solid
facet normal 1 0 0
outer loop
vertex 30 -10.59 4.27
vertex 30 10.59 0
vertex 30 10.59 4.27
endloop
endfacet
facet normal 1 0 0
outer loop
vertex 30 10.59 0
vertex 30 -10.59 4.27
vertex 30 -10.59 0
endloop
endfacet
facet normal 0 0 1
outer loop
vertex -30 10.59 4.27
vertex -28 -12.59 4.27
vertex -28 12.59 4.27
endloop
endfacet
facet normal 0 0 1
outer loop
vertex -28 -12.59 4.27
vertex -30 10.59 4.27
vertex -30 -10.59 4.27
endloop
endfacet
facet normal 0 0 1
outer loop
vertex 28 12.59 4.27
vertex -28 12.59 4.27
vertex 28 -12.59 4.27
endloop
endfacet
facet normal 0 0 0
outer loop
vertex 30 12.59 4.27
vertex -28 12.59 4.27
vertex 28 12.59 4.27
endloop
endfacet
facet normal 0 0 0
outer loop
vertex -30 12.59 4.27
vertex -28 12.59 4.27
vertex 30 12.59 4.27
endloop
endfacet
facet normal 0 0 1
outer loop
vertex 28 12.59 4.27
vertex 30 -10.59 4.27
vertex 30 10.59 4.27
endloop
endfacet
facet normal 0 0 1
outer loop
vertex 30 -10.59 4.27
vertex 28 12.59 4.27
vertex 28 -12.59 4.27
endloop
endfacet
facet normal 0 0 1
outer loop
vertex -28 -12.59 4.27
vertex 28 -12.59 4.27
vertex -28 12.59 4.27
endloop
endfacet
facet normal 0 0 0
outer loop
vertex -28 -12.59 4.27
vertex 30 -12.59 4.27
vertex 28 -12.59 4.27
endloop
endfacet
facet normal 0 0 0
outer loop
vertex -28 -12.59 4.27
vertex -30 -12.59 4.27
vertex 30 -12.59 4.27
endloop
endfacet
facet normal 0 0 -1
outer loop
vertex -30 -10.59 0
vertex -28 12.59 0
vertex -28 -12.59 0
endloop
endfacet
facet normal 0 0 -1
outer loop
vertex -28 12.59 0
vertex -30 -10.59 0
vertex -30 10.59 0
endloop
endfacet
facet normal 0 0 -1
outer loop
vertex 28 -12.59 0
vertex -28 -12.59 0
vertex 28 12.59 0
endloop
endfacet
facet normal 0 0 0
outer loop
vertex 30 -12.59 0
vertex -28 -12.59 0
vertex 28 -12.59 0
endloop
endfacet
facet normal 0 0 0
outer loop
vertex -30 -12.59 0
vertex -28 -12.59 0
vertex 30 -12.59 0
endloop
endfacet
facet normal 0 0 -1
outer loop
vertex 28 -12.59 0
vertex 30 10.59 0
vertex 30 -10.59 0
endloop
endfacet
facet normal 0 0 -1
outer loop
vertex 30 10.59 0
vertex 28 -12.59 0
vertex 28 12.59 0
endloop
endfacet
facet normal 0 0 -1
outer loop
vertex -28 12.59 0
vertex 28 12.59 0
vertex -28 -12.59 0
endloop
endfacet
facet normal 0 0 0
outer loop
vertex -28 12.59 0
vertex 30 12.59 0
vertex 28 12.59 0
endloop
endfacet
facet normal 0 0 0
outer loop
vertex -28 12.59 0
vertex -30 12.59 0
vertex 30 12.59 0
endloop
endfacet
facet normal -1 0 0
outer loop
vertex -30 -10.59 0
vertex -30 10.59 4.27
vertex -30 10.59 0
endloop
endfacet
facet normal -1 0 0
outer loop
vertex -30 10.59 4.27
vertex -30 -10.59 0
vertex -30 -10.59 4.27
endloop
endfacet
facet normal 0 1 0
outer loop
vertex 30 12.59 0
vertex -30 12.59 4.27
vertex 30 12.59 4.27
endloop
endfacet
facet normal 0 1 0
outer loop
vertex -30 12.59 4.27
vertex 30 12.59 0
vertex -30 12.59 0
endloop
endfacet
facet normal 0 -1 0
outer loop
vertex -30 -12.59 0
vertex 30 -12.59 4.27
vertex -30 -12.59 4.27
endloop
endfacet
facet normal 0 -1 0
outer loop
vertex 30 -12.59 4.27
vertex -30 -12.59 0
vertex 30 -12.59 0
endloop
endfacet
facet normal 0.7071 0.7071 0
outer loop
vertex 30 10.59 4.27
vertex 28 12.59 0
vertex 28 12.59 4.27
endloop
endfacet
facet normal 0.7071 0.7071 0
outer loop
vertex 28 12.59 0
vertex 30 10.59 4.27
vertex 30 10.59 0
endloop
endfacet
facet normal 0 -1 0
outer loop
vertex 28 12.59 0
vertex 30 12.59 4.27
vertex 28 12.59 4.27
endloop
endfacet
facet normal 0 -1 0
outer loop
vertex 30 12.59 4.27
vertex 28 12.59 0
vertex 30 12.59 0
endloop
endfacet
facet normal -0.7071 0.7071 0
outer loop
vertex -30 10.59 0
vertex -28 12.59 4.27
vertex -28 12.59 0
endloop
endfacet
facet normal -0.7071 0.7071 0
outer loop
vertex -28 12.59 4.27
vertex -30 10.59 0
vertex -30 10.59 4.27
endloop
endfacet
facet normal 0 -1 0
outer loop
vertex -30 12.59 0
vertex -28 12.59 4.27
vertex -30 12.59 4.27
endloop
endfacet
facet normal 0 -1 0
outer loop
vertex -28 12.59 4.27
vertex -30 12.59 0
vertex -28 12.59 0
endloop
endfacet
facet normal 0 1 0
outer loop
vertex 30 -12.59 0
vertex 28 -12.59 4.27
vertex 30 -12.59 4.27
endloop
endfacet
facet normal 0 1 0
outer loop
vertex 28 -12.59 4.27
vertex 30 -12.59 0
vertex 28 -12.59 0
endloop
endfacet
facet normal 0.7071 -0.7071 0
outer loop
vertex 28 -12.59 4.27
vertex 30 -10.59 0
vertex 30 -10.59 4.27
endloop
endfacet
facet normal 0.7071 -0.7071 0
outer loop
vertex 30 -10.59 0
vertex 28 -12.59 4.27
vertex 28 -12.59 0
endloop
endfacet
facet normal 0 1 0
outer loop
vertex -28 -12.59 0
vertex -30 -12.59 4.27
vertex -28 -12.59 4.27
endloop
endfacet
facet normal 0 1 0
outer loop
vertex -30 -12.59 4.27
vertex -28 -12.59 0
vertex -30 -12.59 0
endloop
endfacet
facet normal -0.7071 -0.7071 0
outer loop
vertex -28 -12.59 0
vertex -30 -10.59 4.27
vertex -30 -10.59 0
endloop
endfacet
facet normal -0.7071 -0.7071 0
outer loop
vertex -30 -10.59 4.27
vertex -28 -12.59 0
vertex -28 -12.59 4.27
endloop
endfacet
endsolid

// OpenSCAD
/* doodle-meta {"version":1,"parameters":{"width":{"label":"Overall width","description":"Changes the body width along X","unit":"mm","feature":"body_width"},"depth":{"label":"Overall depth","description":"Changes the body depth along Y","unit":"mm","feature":"body_depth"},"height":{"label":"Overall height","description":"Changes the body height along Z","unit":"mm","feature":"body_height"},"chamfer_size":{"label":"Chamfer size","description":"Size of the 45-degree chamfer on all edges","unit":"mm","feature":"chamfer"}},"features":{"body_width":{"kind":"dimension","axis":"x","label":"Overall width"},"body_depth":{"kind":"dimension","axis":"y","label":"Overall depth"},"body_height":{"kind":"dimension","axis":"z","label":"Overall height"},"chamfer":{"kind":"region","label":"Edge Chamfers","min":[0,0,0],"max":[{"parameter":"width","scale":1,"offset":0},{"parameter":"depth","scale":1,"offset":0},{"parameter":"height","scale":1,"offset":0}]}}} */

// Parameters
width = 60.0;
depth = 25.18;
height = 4.27;
chamfer_size = 2.0;

// Derived constants
eps = 0.01;

// Module for a single chamfer cutter (a triangular prism)
// The prism is oriented such that its triangular cross-section is in the XY plane
// and it extends along Z.
// It cuts the corner at (x_sign * width/2, y_sign * depth/2).
module chamfer_cutter(x_sign, y_sign) {
    // Define the triangle vertices in the local XY plane relative to the corner
    // The corner is at (x_sign * width/2, y_sign * depth/2)
    // The cut removes material inside the triangle defined by:
    // (cx, cy), (cx - x_sign*chamfer_size, cy), (cx, cy - y_sign*chamfer_size)
    
    cx = x_sign * width / 2;
    cy = y_sign * depth / 2;
    
    // Points of the triangle
    p1 = [cx, cy];
    p2 = [cx - x_sign * chamfer_size, cy];
    p3 = [cx, cy - y_sign * chamfer_size];
    
    // Create the polygon and extrude it along Z
    // We need to extend the cutter beyond the block in Z to ensure clean cuts
    translate([0, 0, -eps])
    linear_extrude(height = height + 2*eps)
    polygon([p1, p2, p3]);
}

// Main design
difference() {
    // Base block
    translate([0, 0, height/2])
    cube([width, depth, height], center=true);
    
    // Subtract chamfers on all 4 vertical edges
    // Top-Right (X+, Y+)
    chamfer_cutter(1, 1);
    // Top-Left (X-, Y+)
    chamfer_cutter(-1, 1);
    // Bottom-Right (X+, Y-)
    chamfer_cutter(1, -1);
    // Bottom-Left (X-, Y-)
    chamfer_cutter(-1, -1);
}
